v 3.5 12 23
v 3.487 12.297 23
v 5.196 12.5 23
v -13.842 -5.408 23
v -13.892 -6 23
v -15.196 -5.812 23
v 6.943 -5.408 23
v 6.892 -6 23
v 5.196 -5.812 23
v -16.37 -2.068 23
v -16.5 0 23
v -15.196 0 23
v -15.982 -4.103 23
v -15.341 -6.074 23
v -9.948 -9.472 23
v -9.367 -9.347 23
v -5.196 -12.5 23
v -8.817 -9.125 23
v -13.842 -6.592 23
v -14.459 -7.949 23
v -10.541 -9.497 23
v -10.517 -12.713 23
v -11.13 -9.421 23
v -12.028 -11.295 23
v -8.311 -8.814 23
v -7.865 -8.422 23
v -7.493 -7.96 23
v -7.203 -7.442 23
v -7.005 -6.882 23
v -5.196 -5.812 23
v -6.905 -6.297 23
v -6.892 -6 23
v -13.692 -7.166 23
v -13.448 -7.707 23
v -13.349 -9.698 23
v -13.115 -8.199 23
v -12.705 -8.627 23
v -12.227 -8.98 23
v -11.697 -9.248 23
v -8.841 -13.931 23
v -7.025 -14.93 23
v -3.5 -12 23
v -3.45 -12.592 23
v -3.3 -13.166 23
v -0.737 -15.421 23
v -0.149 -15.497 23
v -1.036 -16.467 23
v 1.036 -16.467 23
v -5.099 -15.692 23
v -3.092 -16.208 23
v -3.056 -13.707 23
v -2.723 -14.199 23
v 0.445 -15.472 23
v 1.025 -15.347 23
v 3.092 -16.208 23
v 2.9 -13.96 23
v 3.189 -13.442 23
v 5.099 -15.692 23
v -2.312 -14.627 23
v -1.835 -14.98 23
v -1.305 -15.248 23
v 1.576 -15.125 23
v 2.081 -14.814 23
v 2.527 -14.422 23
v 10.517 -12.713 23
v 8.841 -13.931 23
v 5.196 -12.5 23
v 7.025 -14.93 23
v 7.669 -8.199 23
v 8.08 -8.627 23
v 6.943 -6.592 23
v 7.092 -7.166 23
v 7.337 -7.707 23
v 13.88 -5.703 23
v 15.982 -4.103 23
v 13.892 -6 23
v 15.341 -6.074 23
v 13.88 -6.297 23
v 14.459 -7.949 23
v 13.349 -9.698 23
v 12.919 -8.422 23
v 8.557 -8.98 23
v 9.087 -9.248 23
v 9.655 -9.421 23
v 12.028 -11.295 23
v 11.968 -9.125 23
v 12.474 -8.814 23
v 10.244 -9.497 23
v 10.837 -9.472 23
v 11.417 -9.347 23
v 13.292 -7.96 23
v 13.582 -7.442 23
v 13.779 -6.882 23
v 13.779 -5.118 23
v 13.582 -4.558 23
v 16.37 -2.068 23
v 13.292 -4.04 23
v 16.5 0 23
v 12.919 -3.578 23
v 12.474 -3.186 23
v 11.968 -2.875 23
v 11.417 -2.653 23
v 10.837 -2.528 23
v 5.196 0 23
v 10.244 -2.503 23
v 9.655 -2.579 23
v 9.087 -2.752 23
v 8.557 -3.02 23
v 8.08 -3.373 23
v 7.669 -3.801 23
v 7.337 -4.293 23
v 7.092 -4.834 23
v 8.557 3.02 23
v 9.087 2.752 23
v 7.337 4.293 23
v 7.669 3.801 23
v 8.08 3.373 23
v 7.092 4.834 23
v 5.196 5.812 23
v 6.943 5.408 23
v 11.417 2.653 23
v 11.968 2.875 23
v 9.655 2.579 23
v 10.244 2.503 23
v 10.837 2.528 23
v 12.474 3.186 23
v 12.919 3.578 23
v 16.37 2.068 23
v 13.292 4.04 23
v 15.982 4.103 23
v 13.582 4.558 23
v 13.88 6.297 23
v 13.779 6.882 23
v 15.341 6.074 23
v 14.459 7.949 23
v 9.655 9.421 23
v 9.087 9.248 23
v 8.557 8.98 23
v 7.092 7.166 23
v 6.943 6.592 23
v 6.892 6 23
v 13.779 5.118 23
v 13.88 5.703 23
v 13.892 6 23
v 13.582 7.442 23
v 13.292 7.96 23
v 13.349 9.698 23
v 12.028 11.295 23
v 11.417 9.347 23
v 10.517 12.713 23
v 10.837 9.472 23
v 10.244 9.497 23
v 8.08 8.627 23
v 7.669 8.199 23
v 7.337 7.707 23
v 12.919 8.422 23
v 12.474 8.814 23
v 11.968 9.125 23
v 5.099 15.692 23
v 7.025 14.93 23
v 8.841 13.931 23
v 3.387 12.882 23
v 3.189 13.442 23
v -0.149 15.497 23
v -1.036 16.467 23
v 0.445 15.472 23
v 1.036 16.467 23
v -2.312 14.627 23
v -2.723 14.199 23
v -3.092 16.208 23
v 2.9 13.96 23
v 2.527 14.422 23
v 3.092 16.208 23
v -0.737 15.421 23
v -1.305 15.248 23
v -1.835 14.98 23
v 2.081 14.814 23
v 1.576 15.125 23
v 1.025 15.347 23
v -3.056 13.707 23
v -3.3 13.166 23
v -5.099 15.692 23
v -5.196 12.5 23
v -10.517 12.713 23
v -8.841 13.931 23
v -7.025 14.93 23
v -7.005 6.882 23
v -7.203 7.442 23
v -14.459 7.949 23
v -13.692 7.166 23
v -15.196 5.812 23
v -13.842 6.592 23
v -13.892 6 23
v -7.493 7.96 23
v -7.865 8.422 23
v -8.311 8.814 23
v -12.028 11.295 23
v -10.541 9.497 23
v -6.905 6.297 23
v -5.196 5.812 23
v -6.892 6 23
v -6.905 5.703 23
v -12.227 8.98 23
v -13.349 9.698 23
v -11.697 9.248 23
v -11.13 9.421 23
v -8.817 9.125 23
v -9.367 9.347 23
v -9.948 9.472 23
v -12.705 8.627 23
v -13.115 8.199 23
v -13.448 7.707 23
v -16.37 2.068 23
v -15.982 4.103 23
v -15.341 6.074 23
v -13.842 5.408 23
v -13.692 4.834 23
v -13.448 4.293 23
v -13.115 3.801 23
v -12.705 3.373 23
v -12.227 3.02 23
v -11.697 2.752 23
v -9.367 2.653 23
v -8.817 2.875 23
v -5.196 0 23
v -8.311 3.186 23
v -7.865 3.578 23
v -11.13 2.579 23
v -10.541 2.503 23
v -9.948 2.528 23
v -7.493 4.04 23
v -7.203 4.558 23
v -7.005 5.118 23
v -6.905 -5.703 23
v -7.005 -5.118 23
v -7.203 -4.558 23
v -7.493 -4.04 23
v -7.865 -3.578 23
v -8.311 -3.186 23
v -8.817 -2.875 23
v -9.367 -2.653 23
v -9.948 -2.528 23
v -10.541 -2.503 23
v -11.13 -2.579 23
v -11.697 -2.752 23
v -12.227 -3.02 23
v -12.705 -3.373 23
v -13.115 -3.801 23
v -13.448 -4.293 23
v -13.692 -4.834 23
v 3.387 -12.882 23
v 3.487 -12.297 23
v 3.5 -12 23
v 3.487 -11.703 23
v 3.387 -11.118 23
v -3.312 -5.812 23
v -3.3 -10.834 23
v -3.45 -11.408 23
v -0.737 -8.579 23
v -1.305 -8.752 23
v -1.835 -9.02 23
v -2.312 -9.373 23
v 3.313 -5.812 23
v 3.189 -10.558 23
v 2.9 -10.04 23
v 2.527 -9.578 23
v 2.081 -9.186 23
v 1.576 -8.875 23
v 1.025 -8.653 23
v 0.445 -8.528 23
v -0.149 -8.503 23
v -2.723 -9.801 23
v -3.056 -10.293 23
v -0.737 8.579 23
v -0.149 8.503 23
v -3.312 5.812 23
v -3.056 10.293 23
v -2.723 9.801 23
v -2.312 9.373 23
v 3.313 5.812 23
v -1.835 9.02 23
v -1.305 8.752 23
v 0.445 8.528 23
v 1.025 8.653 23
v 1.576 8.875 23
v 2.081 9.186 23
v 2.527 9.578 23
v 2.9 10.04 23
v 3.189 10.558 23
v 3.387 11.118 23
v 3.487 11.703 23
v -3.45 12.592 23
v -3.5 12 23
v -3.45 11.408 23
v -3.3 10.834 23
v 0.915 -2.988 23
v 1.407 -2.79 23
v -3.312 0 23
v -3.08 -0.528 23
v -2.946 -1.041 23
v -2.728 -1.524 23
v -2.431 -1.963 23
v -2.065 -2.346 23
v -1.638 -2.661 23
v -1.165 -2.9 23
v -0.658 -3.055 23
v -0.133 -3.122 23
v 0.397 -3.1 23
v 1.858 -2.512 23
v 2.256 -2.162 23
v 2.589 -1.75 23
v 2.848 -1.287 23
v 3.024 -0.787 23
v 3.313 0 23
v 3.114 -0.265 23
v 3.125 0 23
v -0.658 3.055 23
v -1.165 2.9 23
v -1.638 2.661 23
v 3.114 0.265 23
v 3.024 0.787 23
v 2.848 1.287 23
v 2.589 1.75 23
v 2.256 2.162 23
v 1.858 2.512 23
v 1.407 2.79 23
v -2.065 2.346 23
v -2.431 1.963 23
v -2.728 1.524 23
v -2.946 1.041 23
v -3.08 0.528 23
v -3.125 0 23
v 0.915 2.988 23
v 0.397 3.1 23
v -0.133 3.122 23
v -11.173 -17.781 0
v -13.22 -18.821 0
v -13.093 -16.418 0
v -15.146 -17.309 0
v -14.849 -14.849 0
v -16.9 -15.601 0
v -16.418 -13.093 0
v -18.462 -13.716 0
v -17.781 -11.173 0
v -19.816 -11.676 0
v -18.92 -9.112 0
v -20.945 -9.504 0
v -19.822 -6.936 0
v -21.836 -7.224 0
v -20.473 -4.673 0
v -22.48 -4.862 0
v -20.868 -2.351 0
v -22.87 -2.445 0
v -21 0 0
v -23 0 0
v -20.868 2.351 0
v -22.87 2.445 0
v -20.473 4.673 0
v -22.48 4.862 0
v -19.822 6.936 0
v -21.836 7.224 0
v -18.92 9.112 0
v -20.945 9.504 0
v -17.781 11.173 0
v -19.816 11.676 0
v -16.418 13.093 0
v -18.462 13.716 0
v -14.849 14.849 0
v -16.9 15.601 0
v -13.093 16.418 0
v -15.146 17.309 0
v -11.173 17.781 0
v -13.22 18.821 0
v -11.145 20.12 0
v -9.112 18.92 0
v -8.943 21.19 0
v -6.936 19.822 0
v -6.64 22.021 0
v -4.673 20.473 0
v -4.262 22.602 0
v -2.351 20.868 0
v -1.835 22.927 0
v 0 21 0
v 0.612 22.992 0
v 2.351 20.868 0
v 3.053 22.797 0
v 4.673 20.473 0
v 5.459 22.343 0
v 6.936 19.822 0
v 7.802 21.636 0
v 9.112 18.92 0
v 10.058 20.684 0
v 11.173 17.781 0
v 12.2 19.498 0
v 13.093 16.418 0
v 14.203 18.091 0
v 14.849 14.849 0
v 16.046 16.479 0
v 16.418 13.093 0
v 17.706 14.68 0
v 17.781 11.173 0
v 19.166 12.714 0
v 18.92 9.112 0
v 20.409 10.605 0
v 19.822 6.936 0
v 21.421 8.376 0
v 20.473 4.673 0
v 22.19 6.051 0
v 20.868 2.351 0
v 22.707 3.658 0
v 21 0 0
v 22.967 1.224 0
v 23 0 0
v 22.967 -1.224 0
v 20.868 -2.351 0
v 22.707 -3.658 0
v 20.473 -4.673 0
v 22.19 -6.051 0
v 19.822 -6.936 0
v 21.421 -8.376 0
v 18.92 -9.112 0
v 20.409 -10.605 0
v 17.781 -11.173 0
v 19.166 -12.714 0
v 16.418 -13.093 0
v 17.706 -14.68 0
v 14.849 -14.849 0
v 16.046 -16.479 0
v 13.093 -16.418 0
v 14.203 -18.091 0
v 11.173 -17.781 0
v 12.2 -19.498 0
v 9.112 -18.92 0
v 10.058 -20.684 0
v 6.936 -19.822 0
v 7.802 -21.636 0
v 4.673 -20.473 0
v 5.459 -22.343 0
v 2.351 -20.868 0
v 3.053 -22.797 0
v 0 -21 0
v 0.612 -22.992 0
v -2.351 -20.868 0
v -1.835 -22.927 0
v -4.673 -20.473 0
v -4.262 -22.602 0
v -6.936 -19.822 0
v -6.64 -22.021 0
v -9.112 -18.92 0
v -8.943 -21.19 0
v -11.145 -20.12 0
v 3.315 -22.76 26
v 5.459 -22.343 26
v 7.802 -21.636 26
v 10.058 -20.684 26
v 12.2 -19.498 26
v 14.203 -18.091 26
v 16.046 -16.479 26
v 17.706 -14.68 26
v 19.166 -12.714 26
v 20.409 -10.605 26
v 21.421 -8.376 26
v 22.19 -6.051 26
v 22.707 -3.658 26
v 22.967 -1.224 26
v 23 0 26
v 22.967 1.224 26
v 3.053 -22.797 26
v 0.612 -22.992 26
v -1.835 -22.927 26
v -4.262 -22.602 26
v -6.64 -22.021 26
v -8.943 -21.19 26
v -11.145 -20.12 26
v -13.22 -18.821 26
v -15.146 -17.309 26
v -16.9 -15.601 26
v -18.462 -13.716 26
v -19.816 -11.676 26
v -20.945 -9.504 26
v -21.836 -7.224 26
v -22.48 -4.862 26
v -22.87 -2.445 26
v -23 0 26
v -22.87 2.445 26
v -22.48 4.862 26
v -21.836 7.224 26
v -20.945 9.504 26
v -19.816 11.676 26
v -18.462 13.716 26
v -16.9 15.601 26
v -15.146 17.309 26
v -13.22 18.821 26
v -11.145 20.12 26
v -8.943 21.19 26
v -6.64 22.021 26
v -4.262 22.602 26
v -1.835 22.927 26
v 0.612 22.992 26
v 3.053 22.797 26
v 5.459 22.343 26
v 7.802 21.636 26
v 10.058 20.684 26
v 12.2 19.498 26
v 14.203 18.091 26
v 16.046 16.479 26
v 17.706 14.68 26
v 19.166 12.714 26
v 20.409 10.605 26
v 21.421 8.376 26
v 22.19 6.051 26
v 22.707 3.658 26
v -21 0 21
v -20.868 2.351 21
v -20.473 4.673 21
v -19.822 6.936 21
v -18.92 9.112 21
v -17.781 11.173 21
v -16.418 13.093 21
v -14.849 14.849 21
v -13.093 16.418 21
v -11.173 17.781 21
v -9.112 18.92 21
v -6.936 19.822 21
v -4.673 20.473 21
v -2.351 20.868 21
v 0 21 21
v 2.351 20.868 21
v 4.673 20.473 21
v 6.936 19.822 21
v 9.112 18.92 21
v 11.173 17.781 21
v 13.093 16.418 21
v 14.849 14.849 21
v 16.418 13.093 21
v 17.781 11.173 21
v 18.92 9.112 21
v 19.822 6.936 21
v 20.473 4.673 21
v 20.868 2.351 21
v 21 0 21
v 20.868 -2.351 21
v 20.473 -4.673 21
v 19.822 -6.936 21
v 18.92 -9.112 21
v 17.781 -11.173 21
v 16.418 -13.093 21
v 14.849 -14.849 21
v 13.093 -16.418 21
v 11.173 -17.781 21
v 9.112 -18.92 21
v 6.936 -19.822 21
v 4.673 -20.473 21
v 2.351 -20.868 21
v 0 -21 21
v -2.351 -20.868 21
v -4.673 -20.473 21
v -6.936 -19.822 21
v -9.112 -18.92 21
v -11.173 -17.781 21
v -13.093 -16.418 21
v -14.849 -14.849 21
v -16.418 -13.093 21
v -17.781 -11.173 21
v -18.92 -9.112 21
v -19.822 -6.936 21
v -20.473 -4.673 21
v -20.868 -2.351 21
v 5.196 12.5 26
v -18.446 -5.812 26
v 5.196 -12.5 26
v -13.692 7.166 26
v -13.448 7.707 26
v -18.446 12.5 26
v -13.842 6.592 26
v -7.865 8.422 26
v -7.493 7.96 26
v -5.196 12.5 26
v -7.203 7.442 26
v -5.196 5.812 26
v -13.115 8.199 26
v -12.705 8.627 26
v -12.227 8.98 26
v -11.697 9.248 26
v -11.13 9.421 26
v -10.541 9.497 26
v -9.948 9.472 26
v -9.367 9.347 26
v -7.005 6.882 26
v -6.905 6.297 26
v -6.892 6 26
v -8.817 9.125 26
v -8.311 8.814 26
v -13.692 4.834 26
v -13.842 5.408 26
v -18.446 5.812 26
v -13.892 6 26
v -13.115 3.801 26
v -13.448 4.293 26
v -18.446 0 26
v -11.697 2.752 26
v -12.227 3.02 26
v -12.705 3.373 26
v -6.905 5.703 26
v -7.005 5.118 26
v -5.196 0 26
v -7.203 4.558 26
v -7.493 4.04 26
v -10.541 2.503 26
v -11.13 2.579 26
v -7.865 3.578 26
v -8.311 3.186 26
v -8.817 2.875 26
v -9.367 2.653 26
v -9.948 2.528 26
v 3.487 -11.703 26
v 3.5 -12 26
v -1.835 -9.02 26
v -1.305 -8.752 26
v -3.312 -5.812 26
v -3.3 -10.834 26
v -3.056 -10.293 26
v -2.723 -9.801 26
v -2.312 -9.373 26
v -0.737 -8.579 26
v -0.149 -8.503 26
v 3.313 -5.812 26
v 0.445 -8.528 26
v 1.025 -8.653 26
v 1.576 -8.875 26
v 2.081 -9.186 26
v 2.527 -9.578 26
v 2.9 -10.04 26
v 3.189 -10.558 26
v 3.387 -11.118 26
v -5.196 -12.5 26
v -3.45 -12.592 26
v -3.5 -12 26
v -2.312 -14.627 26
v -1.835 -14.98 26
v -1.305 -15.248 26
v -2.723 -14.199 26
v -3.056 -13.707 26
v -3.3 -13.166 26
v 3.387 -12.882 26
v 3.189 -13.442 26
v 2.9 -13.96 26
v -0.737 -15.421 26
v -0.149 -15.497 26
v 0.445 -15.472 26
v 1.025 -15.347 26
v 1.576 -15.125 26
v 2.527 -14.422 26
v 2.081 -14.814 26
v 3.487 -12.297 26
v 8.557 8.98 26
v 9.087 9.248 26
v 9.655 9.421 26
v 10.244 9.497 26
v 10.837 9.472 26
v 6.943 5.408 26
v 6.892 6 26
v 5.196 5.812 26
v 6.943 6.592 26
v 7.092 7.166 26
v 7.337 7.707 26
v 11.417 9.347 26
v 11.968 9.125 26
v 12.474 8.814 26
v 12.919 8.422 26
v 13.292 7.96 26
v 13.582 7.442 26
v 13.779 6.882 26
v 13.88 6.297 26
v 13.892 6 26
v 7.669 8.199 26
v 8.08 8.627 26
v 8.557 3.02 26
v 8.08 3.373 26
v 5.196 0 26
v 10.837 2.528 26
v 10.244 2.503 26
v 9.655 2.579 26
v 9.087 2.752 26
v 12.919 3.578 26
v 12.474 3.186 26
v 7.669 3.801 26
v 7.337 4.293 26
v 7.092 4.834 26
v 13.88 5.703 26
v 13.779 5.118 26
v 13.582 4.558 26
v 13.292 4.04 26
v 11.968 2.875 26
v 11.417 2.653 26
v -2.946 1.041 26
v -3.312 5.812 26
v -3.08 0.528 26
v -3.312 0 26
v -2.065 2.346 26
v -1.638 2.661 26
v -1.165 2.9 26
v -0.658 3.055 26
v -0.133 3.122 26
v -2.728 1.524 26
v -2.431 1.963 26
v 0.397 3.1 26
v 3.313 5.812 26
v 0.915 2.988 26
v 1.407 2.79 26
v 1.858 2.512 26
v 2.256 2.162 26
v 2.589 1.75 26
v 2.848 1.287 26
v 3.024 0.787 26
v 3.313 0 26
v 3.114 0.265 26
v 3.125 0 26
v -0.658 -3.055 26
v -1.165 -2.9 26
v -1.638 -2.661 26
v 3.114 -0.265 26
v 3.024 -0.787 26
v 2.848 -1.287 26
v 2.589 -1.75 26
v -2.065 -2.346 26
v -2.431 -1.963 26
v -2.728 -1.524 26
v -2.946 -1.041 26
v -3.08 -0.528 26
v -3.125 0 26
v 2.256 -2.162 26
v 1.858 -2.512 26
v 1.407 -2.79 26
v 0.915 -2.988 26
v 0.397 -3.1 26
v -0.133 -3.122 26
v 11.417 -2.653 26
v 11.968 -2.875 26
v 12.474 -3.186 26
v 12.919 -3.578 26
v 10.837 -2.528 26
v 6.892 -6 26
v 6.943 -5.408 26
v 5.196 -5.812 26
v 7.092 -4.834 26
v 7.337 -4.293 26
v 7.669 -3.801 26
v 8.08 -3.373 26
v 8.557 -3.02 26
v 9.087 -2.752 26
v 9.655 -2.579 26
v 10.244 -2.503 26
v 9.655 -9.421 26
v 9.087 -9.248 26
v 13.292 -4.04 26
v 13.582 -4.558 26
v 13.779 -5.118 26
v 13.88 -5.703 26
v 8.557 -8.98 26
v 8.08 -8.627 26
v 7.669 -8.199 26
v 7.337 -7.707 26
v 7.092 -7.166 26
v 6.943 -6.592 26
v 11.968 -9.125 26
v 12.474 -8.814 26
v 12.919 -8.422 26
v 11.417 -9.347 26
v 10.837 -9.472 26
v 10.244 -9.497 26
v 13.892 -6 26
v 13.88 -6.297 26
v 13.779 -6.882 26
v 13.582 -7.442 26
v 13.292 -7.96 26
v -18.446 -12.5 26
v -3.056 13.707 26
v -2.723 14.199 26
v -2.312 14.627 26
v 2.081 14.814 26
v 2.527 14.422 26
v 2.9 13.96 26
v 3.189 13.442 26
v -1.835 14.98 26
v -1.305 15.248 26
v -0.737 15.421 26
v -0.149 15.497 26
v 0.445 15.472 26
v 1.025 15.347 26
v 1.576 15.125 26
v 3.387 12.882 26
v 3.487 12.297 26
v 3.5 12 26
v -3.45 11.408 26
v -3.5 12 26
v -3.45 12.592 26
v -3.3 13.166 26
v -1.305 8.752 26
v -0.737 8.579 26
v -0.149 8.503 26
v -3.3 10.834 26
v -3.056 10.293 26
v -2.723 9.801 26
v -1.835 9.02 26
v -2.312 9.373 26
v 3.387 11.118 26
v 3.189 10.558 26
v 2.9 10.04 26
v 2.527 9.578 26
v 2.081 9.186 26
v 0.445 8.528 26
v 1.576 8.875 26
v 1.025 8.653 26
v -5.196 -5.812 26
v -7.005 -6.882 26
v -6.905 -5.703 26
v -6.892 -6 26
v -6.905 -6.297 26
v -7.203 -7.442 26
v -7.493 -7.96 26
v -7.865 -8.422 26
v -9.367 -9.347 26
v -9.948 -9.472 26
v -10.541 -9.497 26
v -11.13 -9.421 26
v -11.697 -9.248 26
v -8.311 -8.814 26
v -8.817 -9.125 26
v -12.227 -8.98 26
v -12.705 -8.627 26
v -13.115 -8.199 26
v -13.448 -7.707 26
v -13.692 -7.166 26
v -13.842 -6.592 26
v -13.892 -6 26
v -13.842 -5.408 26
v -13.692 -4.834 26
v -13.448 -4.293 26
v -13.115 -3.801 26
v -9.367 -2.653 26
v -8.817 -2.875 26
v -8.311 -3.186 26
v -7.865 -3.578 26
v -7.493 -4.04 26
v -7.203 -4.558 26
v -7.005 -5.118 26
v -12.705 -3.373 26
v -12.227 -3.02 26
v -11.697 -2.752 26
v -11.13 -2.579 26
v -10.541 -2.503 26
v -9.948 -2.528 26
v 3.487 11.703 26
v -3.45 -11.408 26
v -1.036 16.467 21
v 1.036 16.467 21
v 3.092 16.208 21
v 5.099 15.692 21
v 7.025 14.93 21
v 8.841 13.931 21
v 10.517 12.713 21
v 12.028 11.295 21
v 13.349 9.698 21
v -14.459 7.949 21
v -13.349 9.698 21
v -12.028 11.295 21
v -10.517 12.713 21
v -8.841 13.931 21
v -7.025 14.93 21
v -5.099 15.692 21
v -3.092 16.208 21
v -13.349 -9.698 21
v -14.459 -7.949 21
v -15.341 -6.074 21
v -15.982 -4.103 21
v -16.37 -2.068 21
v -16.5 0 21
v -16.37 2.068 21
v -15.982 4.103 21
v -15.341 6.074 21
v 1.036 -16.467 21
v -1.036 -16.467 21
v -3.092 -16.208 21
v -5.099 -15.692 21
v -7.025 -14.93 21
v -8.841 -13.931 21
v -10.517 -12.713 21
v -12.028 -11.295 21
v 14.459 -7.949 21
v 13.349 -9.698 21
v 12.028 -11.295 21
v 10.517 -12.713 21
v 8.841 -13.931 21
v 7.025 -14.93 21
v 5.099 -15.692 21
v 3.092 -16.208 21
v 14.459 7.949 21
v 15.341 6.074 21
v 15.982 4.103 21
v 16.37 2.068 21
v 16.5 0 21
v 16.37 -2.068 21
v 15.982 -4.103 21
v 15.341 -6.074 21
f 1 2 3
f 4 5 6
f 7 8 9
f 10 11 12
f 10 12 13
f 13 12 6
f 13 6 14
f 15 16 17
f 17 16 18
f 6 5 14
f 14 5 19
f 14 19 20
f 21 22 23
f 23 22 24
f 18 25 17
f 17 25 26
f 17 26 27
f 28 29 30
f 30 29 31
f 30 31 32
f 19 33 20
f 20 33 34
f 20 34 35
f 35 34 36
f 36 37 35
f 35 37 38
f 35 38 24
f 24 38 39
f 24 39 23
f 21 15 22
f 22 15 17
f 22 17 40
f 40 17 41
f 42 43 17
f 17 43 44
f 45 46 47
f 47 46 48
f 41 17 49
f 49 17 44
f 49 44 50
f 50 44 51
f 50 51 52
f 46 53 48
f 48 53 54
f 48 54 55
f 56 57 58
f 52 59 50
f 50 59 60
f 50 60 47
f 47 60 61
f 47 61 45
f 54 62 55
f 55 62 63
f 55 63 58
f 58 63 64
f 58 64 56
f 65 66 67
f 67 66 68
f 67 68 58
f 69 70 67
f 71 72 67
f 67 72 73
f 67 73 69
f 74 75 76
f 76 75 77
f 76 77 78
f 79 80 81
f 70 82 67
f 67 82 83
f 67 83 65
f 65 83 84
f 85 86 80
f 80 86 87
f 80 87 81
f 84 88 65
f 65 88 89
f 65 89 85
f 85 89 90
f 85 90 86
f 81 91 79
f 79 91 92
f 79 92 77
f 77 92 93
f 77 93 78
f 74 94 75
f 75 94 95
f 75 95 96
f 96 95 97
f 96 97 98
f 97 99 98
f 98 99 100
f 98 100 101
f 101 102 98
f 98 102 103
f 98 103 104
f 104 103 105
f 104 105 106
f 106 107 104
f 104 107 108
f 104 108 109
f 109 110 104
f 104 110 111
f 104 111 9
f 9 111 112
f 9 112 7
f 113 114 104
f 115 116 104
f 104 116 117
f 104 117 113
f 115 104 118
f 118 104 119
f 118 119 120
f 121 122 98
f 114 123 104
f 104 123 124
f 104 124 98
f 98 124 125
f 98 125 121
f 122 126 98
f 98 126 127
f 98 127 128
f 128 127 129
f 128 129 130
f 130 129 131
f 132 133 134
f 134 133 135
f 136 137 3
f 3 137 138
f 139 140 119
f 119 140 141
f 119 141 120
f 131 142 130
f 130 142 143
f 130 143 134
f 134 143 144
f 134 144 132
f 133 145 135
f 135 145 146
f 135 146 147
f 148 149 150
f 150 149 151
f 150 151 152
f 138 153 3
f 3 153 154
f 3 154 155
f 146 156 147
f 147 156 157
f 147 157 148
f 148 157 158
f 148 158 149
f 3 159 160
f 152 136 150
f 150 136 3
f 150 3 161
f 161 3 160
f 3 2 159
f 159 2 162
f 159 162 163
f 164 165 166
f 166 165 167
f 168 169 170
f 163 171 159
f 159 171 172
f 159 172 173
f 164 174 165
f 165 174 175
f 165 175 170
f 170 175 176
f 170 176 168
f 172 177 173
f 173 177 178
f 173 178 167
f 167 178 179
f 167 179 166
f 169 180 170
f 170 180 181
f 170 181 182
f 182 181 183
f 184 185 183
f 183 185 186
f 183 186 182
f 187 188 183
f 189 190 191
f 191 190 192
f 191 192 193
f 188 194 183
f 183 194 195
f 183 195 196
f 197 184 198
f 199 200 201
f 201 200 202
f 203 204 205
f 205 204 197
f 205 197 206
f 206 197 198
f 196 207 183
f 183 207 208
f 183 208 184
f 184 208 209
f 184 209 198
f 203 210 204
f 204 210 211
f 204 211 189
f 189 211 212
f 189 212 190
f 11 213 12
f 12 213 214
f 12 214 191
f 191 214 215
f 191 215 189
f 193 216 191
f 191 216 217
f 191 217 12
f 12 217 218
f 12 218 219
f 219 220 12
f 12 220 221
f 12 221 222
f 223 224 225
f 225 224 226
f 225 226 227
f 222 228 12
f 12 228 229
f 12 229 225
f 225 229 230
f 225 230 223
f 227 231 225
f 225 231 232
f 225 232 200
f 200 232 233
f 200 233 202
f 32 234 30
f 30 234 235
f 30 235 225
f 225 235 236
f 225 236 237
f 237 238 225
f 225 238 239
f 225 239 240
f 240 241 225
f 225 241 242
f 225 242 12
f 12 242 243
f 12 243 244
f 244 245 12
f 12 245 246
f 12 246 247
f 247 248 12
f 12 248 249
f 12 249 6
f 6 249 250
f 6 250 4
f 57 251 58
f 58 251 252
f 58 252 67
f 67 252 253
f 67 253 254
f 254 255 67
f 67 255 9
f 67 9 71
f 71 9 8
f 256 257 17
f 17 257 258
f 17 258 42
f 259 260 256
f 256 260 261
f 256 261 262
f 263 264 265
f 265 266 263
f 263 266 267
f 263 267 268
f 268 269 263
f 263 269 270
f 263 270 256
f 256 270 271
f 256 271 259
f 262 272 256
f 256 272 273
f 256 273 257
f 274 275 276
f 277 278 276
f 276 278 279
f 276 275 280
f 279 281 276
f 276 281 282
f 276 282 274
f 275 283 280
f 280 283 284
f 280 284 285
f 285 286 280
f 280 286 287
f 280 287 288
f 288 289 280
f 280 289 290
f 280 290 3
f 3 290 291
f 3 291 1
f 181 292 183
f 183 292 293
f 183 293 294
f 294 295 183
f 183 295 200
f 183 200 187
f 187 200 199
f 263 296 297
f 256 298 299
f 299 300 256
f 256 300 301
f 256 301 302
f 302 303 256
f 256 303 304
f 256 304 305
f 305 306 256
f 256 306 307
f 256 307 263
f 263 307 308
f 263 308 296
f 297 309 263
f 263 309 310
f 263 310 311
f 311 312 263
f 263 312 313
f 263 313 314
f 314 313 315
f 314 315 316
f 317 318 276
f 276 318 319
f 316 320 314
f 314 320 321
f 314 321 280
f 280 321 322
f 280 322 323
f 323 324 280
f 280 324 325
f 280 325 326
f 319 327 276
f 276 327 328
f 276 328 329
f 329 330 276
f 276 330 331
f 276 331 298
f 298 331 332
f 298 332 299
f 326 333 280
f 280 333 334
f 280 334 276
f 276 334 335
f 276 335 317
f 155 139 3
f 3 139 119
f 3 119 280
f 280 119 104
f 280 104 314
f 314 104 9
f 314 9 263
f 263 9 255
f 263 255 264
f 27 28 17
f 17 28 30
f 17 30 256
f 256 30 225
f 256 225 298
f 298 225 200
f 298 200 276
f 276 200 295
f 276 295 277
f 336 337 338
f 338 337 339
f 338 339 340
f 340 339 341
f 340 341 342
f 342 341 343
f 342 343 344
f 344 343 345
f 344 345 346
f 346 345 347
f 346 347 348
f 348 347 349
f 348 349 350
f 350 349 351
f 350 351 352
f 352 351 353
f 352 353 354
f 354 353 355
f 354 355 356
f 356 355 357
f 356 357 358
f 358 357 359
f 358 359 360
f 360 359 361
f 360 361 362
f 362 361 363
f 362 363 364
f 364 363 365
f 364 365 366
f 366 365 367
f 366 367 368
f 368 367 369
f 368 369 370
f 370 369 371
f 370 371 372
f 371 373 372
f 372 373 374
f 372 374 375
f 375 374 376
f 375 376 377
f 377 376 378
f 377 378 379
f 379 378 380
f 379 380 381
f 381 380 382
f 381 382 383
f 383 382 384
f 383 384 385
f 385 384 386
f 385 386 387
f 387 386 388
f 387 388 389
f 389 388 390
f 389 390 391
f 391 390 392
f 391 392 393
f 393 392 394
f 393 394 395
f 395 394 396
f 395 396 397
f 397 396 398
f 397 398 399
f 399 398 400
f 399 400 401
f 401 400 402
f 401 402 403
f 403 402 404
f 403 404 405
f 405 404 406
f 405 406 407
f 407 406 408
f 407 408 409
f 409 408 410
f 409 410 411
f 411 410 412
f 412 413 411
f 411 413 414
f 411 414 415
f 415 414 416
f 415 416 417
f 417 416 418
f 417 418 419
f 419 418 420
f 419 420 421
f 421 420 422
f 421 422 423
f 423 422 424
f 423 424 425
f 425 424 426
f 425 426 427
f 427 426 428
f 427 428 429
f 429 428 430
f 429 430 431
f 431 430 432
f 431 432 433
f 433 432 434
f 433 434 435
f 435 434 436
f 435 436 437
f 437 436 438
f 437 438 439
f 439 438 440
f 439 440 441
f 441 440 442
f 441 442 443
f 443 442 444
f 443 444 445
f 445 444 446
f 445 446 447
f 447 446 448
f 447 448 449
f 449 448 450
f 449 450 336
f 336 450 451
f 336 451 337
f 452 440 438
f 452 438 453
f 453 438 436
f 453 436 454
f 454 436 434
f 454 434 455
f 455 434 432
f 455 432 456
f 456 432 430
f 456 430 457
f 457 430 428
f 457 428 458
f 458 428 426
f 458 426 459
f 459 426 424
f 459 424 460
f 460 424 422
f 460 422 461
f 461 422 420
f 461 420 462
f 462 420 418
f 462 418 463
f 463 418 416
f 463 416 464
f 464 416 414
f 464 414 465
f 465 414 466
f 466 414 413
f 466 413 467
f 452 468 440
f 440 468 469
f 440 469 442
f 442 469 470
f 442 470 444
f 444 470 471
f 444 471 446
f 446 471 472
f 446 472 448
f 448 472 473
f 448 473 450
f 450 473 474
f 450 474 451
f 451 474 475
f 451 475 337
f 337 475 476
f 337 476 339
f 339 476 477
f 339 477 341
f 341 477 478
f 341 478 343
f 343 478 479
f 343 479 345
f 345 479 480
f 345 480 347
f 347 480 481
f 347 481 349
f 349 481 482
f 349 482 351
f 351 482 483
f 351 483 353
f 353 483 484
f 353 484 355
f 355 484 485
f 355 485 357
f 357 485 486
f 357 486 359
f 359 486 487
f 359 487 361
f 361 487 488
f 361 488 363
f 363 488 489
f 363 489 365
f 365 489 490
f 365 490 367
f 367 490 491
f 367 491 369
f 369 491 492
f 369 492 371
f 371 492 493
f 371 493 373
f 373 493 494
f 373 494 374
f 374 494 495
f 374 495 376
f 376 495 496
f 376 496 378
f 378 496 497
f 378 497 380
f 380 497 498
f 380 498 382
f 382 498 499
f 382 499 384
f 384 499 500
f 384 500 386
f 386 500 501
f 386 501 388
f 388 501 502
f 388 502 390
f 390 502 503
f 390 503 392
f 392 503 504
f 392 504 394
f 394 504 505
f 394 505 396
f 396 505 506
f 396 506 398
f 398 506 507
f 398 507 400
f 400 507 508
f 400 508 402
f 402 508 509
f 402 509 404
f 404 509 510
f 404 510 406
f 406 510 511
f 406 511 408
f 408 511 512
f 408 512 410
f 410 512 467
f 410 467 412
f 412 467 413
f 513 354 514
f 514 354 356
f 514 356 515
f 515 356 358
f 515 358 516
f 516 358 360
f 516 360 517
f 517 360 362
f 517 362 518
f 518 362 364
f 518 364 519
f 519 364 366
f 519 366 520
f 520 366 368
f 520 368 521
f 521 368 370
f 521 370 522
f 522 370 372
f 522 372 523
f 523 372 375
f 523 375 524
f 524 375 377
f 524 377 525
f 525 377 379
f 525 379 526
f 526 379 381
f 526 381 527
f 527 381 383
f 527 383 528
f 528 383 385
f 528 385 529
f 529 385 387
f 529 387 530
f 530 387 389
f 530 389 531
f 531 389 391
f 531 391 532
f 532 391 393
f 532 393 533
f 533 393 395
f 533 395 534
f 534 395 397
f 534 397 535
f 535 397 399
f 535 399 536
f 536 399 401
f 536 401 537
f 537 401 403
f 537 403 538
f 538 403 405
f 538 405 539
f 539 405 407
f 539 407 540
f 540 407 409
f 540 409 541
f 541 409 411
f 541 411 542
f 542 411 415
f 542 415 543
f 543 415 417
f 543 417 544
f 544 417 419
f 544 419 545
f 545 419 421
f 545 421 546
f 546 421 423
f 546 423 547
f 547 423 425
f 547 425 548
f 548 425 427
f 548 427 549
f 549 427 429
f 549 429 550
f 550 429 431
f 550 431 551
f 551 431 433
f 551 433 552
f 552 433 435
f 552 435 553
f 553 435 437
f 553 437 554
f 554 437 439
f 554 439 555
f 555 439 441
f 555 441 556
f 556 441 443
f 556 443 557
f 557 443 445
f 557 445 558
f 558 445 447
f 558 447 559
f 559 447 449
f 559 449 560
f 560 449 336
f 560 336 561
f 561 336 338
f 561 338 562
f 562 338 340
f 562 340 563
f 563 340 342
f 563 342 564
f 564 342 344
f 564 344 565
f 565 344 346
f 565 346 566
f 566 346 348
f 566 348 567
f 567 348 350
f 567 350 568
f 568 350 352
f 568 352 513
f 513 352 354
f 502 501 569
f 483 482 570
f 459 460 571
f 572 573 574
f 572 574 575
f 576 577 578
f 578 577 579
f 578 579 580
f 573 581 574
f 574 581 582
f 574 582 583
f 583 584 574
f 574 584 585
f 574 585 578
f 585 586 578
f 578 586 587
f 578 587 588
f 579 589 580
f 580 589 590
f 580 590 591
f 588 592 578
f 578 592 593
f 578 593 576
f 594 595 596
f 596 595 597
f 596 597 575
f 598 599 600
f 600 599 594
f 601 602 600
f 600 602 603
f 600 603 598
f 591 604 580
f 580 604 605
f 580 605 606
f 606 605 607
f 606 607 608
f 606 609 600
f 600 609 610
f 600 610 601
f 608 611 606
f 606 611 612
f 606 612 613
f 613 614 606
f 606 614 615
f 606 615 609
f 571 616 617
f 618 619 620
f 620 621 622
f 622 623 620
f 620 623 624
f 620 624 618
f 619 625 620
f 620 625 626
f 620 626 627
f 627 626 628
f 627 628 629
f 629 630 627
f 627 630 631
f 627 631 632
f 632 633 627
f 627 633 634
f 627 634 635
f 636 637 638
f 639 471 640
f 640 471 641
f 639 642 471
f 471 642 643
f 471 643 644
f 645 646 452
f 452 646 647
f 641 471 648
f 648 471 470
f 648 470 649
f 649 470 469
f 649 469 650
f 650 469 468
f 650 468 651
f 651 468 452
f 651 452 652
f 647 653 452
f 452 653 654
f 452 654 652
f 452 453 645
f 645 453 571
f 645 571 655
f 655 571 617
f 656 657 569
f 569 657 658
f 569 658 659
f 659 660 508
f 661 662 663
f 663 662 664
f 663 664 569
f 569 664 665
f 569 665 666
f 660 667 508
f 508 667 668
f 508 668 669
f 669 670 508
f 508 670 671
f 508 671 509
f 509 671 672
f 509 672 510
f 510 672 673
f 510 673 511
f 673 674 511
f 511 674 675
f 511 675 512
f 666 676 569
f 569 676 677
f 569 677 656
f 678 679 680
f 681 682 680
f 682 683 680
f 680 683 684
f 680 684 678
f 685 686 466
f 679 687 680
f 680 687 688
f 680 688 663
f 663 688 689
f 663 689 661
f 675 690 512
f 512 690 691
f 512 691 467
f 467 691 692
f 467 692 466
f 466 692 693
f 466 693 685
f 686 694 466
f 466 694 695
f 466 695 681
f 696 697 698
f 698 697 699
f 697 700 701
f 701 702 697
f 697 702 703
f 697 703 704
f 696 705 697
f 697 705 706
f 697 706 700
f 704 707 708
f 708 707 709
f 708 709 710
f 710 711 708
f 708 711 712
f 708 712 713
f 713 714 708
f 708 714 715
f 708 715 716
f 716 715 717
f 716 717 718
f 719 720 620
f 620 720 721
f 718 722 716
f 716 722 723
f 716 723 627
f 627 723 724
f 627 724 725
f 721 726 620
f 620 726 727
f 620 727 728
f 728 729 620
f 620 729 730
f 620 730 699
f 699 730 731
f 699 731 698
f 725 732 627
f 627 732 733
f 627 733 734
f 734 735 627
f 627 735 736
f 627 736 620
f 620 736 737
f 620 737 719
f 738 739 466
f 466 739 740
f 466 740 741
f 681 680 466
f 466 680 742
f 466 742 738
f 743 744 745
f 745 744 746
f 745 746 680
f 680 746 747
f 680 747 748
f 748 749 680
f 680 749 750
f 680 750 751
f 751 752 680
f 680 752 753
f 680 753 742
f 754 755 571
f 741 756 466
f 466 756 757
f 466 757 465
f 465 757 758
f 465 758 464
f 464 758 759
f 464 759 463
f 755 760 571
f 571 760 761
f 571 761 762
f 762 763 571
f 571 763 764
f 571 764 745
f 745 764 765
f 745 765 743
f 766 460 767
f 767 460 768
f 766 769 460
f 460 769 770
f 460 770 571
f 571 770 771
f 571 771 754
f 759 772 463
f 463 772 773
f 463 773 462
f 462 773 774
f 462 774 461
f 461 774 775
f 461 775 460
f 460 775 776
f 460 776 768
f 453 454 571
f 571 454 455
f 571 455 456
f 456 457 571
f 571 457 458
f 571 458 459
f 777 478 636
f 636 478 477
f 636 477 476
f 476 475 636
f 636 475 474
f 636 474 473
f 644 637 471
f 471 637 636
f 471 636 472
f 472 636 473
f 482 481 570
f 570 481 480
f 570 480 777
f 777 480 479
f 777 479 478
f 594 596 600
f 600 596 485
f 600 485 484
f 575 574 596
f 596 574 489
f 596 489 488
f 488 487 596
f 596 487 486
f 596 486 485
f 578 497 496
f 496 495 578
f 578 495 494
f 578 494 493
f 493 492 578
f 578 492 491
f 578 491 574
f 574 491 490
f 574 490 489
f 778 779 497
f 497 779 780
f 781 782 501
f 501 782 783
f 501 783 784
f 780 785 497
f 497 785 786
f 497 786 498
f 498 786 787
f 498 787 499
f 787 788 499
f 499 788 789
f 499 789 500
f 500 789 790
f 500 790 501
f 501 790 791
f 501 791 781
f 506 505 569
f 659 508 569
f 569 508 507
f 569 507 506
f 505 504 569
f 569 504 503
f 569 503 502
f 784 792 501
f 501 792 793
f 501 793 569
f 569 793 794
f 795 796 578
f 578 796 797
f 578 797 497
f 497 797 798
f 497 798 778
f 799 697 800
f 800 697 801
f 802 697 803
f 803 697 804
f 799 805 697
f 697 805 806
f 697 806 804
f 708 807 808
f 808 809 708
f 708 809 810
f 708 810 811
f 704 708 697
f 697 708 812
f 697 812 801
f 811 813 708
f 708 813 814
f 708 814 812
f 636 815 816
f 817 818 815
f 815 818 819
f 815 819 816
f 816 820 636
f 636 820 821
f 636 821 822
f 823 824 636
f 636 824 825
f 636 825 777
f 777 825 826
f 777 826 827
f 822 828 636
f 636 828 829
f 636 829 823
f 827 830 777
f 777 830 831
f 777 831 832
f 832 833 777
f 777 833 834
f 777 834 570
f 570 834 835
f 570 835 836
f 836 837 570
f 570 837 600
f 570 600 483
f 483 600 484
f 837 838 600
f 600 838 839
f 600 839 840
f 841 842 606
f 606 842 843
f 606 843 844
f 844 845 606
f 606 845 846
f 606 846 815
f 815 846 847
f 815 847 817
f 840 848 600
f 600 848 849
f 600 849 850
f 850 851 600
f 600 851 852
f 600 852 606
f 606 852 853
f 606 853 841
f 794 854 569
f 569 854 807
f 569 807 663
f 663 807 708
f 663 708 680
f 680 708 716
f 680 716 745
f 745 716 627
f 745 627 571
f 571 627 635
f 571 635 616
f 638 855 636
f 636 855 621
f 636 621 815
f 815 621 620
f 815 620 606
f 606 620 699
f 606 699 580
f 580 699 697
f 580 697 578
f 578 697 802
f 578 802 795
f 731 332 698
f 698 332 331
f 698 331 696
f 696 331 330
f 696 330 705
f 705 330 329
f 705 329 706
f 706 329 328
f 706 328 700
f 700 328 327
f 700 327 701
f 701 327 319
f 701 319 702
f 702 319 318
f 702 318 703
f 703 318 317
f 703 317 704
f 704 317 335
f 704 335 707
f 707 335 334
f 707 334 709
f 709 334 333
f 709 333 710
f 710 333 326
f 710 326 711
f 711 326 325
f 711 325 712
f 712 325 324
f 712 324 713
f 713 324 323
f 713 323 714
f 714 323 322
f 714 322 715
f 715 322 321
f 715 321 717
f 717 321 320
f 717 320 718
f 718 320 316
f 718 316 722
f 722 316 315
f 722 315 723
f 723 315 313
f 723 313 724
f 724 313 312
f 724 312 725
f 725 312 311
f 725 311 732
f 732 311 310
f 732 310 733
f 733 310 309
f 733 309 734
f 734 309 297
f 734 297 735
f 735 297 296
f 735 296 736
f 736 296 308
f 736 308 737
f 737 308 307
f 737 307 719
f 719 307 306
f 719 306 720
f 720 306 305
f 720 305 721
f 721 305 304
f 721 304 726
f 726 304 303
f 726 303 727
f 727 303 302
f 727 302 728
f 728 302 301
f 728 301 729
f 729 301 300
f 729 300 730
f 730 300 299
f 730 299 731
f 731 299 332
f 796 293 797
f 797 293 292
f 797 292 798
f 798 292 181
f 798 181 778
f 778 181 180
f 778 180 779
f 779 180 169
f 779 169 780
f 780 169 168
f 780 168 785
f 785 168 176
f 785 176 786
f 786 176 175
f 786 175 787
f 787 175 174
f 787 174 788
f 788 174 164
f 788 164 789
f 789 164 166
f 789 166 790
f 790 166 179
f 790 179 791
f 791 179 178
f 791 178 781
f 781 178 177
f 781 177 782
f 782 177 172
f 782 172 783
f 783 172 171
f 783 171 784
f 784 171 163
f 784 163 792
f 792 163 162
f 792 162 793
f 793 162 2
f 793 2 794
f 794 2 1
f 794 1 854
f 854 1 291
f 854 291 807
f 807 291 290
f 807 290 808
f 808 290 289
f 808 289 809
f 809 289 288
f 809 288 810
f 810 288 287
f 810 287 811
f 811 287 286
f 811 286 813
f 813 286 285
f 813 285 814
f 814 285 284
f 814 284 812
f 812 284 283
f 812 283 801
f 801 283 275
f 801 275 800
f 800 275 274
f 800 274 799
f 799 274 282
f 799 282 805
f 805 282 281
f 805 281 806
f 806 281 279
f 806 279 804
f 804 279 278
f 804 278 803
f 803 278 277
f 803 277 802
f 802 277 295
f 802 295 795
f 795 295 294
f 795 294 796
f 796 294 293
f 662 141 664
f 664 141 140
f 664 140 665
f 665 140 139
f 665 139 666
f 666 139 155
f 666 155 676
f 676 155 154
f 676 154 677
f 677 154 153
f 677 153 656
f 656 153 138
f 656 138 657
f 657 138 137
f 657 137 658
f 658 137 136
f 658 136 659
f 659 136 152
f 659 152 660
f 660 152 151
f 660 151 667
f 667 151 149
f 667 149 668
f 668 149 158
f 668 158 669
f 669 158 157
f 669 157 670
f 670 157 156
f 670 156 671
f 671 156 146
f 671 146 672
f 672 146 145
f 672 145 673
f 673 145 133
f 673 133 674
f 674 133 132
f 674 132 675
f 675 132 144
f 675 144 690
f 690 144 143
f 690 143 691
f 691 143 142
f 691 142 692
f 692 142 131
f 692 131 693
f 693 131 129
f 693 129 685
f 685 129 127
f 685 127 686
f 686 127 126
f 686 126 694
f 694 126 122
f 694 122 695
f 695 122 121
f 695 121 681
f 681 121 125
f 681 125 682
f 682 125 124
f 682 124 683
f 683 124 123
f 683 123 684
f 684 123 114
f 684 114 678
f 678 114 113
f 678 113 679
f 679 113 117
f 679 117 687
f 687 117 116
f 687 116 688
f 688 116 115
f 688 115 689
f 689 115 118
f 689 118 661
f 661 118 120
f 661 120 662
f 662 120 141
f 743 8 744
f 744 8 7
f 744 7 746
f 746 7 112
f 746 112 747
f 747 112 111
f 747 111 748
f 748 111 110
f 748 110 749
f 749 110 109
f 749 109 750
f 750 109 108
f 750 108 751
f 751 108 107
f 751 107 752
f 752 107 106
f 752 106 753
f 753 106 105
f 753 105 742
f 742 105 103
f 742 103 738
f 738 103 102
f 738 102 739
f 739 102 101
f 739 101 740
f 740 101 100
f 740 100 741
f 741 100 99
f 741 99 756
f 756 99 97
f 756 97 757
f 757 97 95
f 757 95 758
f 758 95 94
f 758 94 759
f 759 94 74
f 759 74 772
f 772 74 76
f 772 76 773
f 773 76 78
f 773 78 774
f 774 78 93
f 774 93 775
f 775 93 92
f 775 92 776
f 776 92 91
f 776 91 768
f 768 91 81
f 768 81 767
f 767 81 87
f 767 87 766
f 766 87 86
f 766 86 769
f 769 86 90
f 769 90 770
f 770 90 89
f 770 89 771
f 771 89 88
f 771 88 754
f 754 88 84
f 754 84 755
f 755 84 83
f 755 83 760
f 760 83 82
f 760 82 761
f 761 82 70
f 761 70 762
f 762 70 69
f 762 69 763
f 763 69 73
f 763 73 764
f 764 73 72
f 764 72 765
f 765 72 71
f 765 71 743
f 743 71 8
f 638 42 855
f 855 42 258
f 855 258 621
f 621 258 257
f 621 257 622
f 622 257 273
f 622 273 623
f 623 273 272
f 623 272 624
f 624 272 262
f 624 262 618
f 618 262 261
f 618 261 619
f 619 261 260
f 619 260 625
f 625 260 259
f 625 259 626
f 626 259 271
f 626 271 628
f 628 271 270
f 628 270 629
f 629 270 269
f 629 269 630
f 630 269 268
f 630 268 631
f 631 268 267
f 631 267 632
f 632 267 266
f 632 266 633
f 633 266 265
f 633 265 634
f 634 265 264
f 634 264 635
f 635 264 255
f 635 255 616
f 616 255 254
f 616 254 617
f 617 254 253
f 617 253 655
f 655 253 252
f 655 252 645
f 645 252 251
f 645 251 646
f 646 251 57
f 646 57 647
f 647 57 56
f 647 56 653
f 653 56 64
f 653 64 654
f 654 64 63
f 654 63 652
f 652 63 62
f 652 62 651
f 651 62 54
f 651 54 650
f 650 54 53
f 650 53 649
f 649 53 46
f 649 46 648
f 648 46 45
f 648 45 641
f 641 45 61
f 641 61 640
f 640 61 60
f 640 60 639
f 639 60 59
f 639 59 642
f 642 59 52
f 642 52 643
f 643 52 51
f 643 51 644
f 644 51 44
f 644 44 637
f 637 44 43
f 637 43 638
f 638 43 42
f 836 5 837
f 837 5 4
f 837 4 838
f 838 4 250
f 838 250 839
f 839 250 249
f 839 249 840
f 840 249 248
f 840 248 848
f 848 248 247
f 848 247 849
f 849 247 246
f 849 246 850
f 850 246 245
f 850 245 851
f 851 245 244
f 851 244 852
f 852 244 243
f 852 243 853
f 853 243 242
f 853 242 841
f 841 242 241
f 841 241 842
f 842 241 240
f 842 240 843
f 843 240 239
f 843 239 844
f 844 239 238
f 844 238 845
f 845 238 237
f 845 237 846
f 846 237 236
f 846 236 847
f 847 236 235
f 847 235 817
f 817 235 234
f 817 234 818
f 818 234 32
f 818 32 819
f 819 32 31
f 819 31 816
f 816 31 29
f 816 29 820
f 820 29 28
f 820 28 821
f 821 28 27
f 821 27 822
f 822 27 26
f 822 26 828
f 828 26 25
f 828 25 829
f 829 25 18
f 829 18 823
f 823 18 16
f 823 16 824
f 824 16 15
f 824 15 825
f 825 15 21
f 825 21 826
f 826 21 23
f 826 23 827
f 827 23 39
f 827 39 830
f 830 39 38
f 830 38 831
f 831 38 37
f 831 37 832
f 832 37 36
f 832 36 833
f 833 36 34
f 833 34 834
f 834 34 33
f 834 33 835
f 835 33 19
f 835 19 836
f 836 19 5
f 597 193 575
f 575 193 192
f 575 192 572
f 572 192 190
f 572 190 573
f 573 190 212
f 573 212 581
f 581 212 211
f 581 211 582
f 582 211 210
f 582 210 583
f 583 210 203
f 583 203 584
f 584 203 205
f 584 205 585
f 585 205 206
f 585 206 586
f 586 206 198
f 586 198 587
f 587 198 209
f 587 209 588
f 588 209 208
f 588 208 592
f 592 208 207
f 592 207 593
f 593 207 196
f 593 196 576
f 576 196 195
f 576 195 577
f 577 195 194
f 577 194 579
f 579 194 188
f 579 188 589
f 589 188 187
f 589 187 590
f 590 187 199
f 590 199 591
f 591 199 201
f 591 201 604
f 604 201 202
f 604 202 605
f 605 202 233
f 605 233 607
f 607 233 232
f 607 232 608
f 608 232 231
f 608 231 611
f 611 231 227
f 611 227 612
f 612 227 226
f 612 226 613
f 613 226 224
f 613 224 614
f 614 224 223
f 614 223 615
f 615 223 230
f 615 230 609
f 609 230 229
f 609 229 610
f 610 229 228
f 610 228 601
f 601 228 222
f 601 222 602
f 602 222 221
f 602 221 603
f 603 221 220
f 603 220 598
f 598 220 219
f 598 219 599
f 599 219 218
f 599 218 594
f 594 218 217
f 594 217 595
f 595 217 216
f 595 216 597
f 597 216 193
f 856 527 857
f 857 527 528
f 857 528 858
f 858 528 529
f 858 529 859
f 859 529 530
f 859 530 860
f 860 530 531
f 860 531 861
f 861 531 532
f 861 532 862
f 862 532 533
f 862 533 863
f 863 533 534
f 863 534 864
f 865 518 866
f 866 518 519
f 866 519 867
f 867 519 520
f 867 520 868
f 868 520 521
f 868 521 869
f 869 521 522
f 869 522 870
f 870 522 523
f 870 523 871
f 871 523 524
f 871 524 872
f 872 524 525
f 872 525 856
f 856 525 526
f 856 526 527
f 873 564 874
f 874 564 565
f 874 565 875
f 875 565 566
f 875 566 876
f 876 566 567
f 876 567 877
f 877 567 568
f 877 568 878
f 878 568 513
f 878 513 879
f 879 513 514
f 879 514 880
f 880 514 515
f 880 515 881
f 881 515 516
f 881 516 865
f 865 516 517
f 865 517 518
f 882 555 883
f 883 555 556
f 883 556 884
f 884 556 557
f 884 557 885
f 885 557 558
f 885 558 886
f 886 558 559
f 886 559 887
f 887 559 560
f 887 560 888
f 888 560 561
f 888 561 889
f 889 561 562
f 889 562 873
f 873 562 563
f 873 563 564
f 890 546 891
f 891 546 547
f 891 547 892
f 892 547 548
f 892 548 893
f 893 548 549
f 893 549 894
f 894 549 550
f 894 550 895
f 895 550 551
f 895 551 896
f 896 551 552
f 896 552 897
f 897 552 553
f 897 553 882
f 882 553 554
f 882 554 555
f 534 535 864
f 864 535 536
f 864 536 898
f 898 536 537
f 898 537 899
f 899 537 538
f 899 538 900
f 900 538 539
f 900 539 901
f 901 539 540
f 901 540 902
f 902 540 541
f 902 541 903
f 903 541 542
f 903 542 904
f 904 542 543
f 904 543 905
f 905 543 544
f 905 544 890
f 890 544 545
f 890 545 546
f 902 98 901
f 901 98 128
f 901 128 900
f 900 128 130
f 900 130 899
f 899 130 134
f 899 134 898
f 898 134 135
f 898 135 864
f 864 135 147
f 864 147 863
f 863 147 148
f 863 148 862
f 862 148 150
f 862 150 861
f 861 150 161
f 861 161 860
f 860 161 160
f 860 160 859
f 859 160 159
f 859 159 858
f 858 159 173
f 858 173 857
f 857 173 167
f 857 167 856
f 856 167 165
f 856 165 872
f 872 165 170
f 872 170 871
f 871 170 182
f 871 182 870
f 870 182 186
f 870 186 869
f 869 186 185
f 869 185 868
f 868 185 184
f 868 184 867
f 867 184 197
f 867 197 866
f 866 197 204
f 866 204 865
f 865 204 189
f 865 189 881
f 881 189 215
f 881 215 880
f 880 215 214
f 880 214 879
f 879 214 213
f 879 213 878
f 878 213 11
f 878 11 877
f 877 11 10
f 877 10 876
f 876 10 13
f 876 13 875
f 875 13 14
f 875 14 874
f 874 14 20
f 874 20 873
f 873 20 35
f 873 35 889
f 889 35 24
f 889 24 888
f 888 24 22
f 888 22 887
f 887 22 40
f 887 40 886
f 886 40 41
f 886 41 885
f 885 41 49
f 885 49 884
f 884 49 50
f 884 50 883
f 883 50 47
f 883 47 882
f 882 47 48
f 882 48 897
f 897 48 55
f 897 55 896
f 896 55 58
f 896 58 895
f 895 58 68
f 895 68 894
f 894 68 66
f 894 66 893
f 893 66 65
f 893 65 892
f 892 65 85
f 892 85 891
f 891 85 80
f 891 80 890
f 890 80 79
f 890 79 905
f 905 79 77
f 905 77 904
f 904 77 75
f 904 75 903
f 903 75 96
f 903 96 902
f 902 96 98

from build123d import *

# Parameters (mm, degrees)
CROQUIS1_R              = 23
CROQUIS1_R_2            = 21
SALIENTE_EXTRUIR1_DEPTH = 23
CROQUIS2_R              = 23
CROQUIS2_R_2            = 3.125
CROQUIS2_R_3            = 3.5
SALIENTE_EXTRUIR2_DEPTH = 3
CROQUIS3_R              = 21
CROQUIS3_R_2            = 16.5
SALIENTE_EXTRUIR3_DEPTH = 2


with BuildPart() as part:
    # Croquis1 → Saliente-Extruir1 (new body)
    with BuildSketch(Plane.XY):
        Circle(CROQUIS1_R)
        Circle(CROQUIS1_R_2, mode=Mode.SUBTRACT)
    extrude(amount=SALIENTE_EXTRUIR1_DEPTH)

    # Croquis2 → Saliente-Extruir2 (add)
    with BuildSketch(Plane.XY.offset(23)):
        Circle(CROQUIS2_R)
        Circle(CROQUIS2_R_2, mode=Mode.SUBTRACT)
        with Locations((0, 12)):
            Circle(CROQUIS2_R_3, mode=Mode.SUBTRACT)
        with Locations((10.392304845, 6)):
            Circle(CROQUIS2_R_3, mode=Mode.SUBTRACT)
        with Locations((10.392304845, -6)):
            Circle(CROQUIS2_R_3, mode=Mode.SUBTRACT)
        with Locations((0, -12)):
            Circle(CROQUIS2_R_3, mode=Mode.SUBTRACT)
        with Locations((-10.392304845, -6)):
            Circle(CROQUIS2_R_3, mode=Mode.SUBTRACT)
        with Locations((-10.392304845, 6)):
            Circle(CROQUIS2_R_3, mode=Mode.SUBTRACT)
    extrude(amount=SALIENTE_EXTRUIR2_DEPTH)

    # Croquis3 → Saliente-Extruir3 (add)
    with BuildSketch(Plane(origin=(0, 0, 23), x_dir=(-1, 0, 0), z_dir=(0, 0, -1))):
        Circle(CROQUIS3_R)
        Circle(CROQUIS3_R_2, mode=Mode.SUBTRACT)
    extrude(amount=SALIENTE_EXTRUIR3_DEPTH)


solid = part.part
